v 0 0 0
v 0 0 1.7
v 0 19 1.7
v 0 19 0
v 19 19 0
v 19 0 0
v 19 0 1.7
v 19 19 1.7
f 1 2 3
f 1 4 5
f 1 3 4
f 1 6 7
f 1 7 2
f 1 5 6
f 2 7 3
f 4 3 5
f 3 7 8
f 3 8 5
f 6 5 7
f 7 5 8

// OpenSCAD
/* Warning, this is a very basic generator with a lot of approximation 
input data : [LBGA, HHC, 19x19x1.70mm, 529, , C, C04-25660C]
generated by com.zoubworld.electronics.cad.model3d.Basic
Date : Sun Feb 15 10:50:49 CET 2026
*/

//body
color("black")
translate([0,0,0])
cube([19.0,19.0,1.7], center=false);
